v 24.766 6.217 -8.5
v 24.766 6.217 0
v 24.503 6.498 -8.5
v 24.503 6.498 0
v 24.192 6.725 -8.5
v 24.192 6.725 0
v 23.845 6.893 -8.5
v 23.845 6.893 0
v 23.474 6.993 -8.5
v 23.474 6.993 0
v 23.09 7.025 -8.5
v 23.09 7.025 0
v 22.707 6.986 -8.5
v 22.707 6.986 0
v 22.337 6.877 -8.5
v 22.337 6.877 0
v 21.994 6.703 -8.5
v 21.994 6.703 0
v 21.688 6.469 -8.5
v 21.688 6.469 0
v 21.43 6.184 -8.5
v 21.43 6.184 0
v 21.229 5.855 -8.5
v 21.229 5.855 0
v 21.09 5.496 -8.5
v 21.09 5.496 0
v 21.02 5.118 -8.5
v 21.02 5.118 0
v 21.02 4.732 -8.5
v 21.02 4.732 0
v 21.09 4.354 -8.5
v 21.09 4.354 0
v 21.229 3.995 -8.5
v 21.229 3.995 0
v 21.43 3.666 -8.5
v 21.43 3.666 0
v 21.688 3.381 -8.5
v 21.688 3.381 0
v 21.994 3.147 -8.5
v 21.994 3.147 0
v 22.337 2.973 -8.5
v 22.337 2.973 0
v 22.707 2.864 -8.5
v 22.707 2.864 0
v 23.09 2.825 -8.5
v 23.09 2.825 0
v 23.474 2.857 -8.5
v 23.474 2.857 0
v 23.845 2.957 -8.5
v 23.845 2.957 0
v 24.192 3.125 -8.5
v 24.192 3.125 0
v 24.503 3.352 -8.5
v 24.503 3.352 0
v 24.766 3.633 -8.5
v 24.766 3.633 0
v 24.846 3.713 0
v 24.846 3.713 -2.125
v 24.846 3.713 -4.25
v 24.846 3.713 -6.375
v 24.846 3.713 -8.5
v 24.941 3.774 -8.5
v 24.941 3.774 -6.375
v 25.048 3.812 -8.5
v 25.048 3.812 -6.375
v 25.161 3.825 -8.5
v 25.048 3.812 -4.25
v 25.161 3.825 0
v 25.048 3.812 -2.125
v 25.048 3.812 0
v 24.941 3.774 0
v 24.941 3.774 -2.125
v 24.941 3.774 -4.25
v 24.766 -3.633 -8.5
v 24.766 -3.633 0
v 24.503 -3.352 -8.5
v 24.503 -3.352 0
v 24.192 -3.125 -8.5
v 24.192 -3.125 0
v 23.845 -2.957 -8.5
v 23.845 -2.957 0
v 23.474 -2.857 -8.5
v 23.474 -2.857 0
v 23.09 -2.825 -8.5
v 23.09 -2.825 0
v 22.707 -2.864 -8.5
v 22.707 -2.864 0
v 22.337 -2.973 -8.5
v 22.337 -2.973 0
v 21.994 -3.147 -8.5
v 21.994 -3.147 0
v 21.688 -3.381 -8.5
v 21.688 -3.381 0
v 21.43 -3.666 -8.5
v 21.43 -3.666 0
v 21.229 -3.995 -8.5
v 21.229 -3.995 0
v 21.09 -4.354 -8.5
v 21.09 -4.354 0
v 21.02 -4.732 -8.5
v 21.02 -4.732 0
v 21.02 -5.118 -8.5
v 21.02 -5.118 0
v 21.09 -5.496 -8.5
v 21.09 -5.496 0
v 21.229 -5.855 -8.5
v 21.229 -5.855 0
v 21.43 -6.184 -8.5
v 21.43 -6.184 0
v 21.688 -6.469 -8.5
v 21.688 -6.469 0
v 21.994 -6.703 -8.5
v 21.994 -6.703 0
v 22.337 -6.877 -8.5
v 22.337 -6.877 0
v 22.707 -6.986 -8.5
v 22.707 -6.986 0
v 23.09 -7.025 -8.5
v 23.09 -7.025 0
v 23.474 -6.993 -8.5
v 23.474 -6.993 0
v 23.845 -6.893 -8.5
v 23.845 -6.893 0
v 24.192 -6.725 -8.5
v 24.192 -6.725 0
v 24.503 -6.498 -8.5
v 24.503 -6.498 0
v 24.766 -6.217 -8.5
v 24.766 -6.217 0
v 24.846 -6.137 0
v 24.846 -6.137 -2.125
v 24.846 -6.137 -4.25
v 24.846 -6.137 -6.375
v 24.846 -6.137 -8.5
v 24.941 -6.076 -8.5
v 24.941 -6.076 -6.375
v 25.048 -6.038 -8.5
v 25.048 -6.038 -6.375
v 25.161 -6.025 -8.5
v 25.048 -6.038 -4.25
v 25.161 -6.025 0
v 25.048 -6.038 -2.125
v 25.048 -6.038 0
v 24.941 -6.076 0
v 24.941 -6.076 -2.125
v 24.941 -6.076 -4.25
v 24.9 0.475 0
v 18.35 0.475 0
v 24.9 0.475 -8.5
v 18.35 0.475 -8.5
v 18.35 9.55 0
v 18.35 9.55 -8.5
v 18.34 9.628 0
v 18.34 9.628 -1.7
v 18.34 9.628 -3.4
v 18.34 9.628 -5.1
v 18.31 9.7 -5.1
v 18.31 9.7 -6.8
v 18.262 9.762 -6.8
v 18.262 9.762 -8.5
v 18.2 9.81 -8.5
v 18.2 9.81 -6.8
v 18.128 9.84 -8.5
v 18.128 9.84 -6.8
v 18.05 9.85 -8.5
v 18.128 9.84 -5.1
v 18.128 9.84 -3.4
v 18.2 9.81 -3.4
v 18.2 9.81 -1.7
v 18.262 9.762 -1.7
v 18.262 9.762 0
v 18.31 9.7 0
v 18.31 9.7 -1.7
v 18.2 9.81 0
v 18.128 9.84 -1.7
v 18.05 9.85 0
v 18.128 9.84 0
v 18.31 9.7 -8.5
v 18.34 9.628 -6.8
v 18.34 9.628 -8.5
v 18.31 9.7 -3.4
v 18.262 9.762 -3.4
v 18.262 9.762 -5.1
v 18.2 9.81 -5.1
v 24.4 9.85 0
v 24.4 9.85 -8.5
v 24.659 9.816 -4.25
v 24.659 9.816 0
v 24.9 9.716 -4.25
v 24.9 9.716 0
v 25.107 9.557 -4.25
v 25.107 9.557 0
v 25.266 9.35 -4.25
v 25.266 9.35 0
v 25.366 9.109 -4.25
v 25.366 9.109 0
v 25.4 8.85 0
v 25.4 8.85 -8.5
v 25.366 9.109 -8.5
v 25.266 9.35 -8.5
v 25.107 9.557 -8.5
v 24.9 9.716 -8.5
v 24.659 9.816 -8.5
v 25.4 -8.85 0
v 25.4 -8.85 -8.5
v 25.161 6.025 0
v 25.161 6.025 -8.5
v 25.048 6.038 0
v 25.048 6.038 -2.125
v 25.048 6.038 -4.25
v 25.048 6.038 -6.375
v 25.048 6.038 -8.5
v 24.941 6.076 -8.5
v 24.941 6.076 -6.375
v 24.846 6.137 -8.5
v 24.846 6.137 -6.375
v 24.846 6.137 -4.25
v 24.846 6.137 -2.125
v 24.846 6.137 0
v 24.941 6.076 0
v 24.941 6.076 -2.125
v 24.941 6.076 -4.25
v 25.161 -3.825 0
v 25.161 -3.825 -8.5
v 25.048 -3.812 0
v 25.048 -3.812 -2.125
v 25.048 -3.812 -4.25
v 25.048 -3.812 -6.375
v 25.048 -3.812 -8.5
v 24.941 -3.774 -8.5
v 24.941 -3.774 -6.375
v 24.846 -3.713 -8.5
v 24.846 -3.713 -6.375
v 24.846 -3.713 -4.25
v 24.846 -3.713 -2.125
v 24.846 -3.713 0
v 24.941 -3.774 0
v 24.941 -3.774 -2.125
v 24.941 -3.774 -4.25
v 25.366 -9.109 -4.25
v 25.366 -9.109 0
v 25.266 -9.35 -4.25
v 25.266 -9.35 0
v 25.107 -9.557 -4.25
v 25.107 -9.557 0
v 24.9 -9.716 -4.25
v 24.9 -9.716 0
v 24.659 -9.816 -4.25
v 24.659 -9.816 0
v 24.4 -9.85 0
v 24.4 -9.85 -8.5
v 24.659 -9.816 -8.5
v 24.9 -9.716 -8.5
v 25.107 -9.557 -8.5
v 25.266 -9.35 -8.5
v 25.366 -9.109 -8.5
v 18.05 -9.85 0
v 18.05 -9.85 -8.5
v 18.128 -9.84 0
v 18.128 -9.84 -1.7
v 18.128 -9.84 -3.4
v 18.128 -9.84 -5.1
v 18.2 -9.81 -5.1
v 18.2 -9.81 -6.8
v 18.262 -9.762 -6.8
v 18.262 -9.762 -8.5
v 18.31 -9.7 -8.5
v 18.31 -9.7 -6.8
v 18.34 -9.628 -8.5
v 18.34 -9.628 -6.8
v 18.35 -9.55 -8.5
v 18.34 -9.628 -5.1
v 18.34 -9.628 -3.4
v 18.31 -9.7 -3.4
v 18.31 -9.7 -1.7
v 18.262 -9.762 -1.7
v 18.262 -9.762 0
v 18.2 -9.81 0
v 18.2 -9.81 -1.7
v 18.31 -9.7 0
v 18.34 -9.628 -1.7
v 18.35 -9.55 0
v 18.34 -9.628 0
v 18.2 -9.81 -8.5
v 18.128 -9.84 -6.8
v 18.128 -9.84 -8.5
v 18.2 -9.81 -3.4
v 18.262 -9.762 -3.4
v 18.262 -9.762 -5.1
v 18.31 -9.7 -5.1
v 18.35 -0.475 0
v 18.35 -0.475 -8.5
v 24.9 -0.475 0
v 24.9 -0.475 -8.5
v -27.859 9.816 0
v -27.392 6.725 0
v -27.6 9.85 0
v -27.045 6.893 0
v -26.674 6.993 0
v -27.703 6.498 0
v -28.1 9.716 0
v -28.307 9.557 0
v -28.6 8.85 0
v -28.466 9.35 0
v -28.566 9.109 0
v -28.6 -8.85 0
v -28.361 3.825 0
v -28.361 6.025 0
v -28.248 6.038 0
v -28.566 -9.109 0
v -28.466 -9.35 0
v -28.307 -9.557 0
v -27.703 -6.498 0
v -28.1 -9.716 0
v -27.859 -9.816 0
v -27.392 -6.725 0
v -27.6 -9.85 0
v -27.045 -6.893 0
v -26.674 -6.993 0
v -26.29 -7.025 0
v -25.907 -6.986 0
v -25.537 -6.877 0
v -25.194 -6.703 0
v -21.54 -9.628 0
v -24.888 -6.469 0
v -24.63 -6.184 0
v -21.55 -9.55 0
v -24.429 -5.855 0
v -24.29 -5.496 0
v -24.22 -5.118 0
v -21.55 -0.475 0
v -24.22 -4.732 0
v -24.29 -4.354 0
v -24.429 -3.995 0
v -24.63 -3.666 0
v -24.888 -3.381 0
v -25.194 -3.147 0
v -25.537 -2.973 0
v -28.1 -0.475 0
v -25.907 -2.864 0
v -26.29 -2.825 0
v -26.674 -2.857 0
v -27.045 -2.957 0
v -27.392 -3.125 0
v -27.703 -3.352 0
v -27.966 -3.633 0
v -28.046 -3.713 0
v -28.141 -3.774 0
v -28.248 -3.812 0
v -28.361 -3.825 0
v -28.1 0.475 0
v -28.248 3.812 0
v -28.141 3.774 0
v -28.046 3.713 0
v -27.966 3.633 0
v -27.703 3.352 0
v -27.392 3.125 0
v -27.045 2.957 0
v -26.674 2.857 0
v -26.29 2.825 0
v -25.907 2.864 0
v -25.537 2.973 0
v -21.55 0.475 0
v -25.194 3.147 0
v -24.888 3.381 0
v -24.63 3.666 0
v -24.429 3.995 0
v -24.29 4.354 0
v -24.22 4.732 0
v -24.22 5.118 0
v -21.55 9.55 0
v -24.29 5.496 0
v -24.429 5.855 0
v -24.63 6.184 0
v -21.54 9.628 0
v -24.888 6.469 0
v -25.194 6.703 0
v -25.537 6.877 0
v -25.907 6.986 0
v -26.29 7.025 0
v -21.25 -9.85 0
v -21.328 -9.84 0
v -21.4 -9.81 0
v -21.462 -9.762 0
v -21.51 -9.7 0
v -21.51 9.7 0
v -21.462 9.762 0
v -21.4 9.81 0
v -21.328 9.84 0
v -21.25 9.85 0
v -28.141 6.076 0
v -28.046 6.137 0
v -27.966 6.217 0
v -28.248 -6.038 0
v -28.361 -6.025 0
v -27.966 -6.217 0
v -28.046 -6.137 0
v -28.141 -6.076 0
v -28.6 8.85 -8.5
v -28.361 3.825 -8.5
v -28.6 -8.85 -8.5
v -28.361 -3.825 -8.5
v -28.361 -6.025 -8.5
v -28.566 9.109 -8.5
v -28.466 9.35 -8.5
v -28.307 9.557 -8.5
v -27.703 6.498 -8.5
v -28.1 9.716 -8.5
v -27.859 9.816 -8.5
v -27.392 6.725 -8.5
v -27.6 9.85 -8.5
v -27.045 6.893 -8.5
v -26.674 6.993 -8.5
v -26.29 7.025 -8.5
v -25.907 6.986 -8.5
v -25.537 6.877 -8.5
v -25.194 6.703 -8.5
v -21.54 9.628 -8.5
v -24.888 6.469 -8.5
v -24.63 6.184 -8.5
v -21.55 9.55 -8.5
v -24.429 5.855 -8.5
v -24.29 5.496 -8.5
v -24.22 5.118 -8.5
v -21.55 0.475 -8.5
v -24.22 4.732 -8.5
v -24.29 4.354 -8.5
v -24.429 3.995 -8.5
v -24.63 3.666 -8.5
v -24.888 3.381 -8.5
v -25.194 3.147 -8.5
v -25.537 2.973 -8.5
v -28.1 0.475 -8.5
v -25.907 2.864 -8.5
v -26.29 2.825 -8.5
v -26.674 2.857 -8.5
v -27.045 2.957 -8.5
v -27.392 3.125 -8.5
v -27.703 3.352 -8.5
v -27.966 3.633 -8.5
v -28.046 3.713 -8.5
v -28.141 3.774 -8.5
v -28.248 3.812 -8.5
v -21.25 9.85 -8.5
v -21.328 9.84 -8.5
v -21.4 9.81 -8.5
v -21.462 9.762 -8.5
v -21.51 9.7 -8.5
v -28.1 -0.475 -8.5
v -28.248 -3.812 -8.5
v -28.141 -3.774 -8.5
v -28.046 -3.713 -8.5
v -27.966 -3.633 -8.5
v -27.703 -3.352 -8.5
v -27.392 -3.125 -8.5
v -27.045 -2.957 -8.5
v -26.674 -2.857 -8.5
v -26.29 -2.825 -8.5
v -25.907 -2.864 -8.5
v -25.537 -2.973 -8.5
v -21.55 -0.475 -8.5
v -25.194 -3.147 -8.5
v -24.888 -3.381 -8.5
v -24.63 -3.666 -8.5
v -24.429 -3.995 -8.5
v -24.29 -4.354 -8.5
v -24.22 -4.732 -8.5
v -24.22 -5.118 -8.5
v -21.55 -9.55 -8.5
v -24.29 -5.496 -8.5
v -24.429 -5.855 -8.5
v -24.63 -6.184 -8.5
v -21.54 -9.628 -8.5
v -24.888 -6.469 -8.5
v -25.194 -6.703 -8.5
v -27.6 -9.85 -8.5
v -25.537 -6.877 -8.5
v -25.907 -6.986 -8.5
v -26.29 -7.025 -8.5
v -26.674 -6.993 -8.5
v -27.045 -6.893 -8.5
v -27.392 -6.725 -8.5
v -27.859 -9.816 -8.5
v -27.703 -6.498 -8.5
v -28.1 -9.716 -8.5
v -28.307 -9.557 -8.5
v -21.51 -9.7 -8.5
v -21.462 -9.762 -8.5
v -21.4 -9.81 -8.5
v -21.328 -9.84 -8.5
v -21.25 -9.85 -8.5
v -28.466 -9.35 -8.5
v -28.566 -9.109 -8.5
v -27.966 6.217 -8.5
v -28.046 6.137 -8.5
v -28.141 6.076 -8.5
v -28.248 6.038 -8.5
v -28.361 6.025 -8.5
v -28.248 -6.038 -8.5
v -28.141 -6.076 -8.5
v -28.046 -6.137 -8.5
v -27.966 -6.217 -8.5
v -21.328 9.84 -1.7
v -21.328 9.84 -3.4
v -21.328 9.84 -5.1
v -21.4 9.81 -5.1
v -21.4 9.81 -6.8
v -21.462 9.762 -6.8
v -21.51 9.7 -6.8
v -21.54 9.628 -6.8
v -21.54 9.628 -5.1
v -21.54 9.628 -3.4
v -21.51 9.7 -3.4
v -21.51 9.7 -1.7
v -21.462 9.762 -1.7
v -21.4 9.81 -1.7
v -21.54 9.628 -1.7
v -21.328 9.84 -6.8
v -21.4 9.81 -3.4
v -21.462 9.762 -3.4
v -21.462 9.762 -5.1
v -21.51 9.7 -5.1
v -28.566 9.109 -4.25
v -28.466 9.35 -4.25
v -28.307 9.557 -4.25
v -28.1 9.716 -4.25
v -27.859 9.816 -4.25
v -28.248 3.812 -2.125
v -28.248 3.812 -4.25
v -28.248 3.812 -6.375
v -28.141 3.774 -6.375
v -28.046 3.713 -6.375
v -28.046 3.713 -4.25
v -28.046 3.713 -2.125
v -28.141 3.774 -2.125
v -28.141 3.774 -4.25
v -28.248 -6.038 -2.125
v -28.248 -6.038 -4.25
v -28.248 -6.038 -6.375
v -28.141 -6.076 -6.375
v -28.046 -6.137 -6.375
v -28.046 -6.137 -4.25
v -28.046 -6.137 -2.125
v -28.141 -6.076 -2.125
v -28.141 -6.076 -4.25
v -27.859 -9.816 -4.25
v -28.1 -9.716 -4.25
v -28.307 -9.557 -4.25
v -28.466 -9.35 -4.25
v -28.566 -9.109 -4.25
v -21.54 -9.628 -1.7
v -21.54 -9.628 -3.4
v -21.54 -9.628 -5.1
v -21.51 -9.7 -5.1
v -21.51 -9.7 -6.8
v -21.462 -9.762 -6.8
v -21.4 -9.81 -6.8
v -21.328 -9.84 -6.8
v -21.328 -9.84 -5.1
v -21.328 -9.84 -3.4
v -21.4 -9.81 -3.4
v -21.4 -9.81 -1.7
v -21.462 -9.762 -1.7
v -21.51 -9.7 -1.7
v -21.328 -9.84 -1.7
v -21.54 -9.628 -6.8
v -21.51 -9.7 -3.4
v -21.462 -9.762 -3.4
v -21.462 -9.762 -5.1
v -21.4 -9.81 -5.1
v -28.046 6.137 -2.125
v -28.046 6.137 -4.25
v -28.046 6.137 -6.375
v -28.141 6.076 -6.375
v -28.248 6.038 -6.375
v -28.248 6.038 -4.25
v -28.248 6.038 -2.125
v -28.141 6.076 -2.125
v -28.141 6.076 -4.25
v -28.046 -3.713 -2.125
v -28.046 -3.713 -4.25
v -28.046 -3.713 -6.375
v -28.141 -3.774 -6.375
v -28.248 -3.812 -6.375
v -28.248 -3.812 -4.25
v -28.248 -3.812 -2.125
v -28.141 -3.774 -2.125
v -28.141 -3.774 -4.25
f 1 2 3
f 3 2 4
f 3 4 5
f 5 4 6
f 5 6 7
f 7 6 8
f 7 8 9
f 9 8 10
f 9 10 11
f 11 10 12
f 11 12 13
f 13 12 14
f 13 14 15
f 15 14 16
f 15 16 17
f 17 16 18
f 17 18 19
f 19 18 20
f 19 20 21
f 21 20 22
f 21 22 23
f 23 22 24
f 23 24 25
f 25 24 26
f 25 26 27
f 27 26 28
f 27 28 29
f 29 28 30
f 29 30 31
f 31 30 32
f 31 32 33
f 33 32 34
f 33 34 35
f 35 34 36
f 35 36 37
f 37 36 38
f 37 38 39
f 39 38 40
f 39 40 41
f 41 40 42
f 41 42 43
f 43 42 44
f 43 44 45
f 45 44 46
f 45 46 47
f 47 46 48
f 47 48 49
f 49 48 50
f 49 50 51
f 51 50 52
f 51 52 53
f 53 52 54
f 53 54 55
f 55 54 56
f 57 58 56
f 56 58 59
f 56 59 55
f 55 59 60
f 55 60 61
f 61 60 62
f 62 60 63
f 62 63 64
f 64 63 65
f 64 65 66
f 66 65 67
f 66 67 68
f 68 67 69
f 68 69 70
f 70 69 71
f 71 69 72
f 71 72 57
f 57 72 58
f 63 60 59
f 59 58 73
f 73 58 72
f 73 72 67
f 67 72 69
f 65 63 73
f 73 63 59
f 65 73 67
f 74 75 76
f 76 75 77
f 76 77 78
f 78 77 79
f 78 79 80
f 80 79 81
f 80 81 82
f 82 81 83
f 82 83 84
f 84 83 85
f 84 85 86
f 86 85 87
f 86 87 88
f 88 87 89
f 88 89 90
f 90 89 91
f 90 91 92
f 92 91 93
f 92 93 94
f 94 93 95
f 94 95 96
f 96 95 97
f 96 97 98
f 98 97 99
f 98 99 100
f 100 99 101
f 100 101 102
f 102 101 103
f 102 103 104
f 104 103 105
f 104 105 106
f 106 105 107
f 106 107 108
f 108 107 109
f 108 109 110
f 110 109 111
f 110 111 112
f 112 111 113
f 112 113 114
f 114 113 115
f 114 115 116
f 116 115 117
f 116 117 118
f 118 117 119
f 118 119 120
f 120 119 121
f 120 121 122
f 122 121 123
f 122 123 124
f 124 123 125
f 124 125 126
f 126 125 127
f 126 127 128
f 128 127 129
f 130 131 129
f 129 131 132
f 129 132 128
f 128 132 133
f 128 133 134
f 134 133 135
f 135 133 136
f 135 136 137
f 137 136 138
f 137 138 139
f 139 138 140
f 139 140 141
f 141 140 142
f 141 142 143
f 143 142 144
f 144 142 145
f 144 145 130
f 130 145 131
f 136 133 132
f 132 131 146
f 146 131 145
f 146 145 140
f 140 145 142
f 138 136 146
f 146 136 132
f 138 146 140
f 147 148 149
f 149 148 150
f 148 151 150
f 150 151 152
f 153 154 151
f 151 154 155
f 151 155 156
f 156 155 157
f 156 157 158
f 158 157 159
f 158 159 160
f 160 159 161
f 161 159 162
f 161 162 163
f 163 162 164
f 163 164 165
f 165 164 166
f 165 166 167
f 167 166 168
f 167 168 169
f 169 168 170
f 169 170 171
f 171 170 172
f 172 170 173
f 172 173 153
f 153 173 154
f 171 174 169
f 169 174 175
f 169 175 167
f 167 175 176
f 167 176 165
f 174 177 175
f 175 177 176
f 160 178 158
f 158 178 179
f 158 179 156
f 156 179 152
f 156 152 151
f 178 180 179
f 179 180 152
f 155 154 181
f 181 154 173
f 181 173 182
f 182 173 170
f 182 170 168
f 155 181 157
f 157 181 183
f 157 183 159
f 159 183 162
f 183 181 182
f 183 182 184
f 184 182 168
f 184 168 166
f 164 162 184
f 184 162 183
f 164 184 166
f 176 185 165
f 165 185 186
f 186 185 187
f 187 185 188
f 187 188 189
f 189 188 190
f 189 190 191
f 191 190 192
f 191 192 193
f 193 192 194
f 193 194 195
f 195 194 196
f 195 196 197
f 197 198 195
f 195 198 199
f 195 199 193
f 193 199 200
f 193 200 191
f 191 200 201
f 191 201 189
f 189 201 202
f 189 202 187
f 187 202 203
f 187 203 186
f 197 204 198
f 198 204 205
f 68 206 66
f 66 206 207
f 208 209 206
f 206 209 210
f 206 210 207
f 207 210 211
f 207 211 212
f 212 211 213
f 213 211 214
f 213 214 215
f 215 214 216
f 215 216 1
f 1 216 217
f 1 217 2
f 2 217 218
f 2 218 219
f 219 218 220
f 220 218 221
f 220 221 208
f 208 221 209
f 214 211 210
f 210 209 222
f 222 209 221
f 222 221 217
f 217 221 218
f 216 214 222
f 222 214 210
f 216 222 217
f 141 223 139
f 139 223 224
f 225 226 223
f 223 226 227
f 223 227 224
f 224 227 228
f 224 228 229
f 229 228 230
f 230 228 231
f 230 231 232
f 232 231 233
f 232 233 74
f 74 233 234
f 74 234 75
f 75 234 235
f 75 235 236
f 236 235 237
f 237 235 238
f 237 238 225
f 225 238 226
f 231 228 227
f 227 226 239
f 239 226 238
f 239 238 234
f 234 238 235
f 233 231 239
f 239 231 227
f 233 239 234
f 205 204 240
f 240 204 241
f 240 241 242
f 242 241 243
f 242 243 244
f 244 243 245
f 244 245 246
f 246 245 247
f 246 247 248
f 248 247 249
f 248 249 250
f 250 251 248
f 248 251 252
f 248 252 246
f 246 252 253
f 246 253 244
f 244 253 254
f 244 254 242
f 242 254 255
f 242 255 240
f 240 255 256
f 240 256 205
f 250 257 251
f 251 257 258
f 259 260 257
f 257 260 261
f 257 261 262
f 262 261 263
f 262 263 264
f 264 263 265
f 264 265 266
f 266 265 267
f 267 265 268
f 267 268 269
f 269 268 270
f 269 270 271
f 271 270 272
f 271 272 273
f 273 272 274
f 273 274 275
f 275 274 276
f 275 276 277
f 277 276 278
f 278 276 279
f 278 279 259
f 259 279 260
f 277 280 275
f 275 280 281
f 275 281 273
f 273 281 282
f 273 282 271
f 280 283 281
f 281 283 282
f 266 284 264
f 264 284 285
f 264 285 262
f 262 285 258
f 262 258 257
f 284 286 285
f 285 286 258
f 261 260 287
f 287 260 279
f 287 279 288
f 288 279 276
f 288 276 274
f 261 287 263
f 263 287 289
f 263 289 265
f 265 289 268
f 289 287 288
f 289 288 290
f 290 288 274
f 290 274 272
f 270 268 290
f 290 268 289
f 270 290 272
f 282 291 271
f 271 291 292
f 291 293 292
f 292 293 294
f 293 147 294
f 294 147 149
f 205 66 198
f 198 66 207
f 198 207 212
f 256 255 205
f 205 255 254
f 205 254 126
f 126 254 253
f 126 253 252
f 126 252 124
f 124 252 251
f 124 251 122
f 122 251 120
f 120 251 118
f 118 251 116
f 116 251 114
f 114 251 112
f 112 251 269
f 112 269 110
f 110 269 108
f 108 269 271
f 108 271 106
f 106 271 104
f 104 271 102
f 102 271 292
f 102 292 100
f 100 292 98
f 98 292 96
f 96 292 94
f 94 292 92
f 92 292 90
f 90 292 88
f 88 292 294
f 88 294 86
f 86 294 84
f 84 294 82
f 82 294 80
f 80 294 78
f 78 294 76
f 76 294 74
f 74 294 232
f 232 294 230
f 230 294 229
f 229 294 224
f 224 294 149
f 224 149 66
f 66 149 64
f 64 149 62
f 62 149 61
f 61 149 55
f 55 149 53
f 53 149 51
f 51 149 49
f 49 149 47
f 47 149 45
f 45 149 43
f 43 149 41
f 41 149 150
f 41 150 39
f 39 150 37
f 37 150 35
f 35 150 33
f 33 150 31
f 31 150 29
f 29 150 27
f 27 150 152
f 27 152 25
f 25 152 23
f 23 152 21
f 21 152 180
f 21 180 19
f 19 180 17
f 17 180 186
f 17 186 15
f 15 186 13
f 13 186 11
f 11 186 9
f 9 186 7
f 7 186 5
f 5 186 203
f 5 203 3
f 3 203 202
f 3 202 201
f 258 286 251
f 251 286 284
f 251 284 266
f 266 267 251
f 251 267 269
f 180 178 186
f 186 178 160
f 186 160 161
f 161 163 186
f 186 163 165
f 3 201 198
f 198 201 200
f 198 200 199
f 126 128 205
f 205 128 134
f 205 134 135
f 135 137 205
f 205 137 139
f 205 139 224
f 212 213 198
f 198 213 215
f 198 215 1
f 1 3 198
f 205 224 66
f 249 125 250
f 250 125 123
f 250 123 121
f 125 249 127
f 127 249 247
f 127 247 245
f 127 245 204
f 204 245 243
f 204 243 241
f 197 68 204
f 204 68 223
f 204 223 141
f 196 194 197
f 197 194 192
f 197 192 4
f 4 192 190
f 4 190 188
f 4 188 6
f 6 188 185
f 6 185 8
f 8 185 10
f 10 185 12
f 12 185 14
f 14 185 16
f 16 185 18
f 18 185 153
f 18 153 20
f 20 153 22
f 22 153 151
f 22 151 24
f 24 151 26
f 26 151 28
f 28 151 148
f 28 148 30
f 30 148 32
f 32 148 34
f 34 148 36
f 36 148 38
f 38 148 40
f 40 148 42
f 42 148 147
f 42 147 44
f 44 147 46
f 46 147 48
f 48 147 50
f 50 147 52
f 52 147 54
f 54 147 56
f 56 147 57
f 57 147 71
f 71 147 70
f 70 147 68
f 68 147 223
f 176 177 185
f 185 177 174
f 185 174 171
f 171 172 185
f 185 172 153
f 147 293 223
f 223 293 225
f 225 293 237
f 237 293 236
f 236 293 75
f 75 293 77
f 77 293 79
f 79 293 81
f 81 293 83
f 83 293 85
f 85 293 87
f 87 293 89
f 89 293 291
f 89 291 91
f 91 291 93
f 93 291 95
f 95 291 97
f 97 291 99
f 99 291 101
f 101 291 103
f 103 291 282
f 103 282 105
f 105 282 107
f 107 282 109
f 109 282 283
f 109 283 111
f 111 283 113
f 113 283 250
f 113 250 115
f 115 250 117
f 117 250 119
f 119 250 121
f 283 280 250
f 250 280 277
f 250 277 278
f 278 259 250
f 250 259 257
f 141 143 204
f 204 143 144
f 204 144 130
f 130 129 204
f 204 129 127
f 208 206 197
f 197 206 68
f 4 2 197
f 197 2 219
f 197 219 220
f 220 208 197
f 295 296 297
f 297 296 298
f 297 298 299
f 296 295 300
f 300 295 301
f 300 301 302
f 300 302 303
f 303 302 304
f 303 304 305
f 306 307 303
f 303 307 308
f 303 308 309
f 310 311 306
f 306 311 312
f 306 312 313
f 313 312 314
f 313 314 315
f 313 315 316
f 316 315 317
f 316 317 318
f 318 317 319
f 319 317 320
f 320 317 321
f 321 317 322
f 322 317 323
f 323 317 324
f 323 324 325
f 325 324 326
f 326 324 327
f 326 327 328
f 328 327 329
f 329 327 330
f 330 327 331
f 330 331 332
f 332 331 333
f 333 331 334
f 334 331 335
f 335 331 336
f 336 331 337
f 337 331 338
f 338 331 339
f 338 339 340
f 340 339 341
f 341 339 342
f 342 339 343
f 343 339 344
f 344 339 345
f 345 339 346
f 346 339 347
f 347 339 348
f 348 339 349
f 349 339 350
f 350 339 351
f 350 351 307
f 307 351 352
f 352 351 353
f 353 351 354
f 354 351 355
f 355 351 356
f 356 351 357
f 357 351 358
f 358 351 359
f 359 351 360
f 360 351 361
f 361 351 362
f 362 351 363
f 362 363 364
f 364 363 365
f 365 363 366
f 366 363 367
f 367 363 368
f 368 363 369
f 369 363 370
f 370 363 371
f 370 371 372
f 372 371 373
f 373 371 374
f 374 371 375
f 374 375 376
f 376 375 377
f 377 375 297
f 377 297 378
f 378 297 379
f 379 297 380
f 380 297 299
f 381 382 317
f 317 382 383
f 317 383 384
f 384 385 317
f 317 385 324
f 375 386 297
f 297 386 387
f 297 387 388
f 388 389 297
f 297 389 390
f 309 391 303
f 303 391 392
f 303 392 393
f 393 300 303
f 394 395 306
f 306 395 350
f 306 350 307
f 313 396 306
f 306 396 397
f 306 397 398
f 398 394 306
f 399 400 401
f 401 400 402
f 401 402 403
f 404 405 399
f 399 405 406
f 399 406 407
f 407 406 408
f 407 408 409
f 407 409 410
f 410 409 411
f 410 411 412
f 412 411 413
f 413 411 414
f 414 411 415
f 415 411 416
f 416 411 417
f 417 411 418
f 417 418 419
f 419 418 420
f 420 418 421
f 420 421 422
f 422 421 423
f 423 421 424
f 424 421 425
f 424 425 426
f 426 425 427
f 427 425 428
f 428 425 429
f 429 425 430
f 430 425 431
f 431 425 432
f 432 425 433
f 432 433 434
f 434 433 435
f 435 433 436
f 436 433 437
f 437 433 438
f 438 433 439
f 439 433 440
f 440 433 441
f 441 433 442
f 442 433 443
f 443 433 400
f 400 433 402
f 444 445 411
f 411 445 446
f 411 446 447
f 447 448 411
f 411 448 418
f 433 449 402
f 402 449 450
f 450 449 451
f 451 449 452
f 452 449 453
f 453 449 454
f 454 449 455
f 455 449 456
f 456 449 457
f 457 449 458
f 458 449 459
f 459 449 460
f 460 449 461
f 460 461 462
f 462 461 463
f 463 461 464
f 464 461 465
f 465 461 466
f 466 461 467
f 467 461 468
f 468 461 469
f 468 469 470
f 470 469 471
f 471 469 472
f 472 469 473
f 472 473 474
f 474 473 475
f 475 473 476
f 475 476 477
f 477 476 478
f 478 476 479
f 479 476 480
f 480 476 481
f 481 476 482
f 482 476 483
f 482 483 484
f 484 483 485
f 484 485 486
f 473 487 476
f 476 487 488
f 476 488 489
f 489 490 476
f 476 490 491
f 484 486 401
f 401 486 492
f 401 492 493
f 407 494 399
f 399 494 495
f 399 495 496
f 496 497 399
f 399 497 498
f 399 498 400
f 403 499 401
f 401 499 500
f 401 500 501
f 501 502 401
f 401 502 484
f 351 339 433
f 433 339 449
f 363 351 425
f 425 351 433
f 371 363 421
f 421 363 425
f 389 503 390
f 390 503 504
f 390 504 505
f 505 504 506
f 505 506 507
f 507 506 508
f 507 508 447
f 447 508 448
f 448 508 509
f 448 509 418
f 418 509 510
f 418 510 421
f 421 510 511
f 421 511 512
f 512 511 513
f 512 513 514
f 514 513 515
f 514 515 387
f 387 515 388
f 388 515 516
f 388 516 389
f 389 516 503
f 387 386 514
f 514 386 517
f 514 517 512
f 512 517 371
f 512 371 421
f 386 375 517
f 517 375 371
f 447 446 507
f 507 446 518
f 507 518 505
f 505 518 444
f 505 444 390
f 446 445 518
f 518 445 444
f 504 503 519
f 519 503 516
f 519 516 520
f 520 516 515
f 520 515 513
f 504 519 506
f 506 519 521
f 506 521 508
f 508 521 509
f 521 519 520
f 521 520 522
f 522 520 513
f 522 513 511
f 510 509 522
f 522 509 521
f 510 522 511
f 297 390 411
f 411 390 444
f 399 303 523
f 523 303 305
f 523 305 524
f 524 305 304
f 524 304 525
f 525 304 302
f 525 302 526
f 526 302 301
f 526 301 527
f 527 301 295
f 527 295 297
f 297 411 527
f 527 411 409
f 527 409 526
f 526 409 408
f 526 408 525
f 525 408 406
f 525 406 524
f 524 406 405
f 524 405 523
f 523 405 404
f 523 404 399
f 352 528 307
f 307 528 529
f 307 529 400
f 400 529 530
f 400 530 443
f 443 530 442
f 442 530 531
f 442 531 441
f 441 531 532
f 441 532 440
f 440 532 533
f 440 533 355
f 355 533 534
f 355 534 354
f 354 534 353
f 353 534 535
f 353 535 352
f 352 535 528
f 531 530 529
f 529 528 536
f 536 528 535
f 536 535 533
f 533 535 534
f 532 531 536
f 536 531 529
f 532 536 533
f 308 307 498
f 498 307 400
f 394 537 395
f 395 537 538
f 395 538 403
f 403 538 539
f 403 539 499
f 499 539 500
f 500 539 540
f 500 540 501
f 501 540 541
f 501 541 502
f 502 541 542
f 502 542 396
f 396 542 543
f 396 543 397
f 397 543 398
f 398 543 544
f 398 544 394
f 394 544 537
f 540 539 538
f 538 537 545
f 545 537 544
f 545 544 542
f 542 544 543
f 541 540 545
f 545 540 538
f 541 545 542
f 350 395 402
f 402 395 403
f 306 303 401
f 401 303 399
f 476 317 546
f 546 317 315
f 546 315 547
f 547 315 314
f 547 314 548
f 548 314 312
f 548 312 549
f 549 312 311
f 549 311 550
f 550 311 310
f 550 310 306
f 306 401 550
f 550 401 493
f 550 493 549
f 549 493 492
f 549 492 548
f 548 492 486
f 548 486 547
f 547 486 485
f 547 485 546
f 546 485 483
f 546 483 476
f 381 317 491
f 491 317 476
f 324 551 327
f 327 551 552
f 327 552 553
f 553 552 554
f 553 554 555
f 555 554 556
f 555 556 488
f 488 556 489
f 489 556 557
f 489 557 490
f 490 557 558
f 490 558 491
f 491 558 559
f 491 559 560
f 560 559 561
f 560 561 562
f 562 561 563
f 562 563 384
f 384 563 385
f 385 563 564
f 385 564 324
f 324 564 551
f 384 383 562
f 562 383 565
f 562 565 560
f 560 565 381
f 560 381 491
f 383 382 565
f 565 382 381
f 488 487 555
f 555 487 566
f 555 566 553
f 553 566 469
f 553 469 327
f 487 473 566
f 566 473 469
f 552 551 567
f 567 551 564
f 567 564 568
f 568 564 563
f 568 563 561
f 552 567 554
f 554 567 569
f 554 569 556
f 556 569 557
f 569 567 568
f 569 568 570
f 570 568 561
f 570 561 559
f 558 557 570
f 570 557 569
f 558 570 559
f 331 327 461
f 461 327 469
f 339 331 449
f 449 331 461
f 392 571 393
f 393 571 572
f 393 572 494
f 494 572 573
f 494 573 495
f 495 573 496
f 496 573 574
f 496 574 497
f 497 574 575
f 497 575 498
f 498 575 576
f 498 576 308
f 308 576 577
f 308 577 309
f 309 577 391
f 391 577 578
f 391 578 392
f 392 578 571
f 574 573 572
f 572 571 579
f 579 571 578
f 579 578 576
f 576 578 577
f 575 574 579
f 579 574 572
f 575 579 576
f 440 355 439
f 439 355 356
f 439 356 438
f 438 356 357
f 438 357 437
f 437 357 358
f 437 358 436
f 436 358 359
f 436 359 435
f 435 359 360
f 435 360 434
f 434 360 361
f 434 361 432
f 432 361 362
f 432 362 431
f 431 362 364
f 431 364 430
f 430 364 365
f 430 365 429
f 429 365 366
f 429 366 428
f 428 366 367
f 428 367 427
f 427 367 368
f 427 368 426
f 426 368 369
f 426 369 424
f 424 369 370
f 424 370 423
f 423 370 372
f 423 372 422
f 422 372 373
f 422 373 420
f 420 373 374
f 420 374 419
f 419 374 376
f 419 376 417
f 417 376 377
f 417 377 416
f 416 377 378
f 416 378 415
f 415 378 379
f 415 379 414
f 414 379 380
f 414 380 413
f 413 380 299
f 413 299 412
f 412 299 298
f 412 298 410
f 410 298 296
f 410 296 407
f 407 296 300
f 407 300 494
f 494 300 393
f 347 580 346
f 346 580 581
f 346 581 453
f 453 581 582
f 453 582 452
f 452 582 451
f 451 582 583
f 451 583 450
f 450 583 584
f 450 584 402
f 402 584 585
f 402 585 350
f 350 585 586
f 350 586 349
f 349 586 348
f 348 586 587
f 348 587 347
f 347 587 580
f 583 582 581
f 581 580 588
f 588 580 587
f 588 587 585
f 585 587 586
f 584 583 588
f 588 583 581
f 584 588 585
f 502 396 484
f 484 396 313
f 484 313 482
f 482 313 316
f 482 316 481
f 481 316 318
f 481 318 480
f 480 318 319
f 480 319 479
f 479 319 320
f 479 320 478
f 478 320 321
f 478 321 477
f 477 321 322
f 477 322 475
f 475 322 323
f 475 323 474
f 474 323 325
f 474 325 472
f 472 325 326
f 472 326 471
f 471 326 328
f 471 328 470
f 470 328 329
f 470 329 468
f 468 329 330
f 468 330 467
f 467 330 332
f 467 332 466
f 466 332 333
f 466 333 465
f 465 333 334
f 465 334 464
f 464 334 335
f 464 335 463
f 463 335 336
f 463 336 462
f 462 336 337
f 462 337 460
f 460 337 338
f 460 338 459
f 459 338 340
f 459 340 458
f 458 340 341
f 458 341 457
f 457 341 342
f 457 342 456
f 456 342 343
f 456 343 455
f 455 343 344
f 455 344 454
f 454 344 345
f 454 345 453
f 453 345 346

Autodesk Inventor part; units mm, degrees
ref_plane "YZ Plane" through (0, 0, 0) normal (1, 0, 0) x (0, 1, 0)
ref_plane "Work Plane1" through (25.1605, -6.525, -8.5) normal (0, 0, 1) x (1, 0, 0)
sketch "Sketch2" plane through (25.1605, -6.525, -8.5) normal (0, 0, 1) x (1, 0, 0)
  line L0 (-6.8105, 7) -> (-6.8105, 16.075) projected
  line L1 (-6.8105, 7) -> (-0.2605, 7) projected
  line L2 (-0.2605, 7) -> (-0.2605, 6.05) projected
  line L3 (-6.8105, 6.05) -> (-0.2605, 6.05) projected
  line L4 (-6.8105, -3.025) -> (-6.8105, 6.05) projected
  arc A0 (-7.1105, -3.325) -> (-6.8105, -3.025) centre (-7.1105, -3.025) ccw projected
  line L5 (-7.1105, -3.325) -> (-0.7605, -3.325) projected
  arc A1 (-0.7605, -3.325) -> (0.2395, -2.325) centre (-0.7605, -2.325) ccw projected
  line L6 (0.2395, -2.325) -> (0.2395, 0.5) projected
  line L7 (0.2395, 0.5) -> (0, 0.5) projected
  arc A2 (0, 0.5) -> (-0.3941, 0.3077) centre (0, 0) ccw projected
  arc A3 (-0.3941, 2.8923) -> (-0.3941, 0.3077) centre (-2.0494, 1.6) ccw projected
  arc A4 (-0.3941, 2.8923) -> (0, 2.7) centre (0, 3.2) ccw projected
  line L8 (0, 2.7) -> (0.2395, 2.7) projected
  line L9 (0.2395, 2.7) -> (0.2395, 10.35) projected
  line L10 (0.2395, 10.35) -> (0, 10.35) projected
  arc A5 (0, 10.35) -> (-0.3941, 10.1577) centre (0, 9.85) ccw projected
  arc A6 (-0.3941, 12.7423) -> (-0.3941, 10.1577) centre (-2.0494, 11.45) ccw projected
  arc A7 (-0.3941, 12.7423) -> (0, 12.55) centre (0, 13.05) ccw projected
  line L11 (0, 12.55) -> (0.2395, 12.55) projected
  line L12 (0.2395, 12.55) -> (0.2395, 15.375) projected
  arc A8 (0.2395, 15.375) -> (-0.7605, 16.375) centre (-0.7605, 15.375) ccw projected
  line L13 (-0.7605, 16.375) -> (-7.1105, 16.375) projected
  arc A9 (-6.8105, 16.075) -> (-7.1105, 16.375) centre (-7.1105, 16.075) ccw projected
  line L14 (-53.2605, 7) -> (-53.2605, 6.05) projected
  line L15 (-46.7105, 7) -> (-53.2605, 7) projected
  line L16 (-46.7105, 16.075) -> (-46.7105, 7) projected
  arc A10 (-46.4105, 16.375) -> (-46.7105, 16.075) centre (-46.4105, 16.075) ccw projected
  line L17 (-46.4105, 16.375) -> (-52.7605, 16.375) projected
  arc A11 (-52.7605, 16.375) -> (-53.7605, 15.375) centre (-52.7605, 15.375) ccw projected
  line L18 (-53.7605, 15.375) -> (-53.7605, 12.55) projected
  line L19 (-53.7605, 12.55) -> (-53.5211, 12.55) projected
  arc A12 (-53.5211, 12.55) -> (-53.127, 12.7423) centre (-53.5211, 13.05) ccw projected
  arc A13 (-53.127, 10.1577) -> (-53.127, 12.7423) centre (-51.4717, 11.45) ccw projected
  arc A14 (-53.127, 10.1577) -> (-53.5211, 10.35) centre (-53.5211, 9.85) ccw projected
  line L20 (-53.5211, 10.35) -> (-53.7605, 10.35) projected
  line L21 (-53.7605, 10.35) -> (-53.7605, 2.7) projected
  line L22 (-53.7605, 2.7) -> (-53.5211, 2.7) projected
  arc A15 (-53.5211, 2.7) -> (-53.127, 2.8923) centre (-53.5211, 3.2) ccw projected
  arc A16 (-53.127, 0.3077) -> (-53.127, 2.8923) centre (-51.4717, 1.6) ccw projected
  arc A17 (-53.127, 0.3077) -> (-53.5211, 0.5) centre (-53.5211, 0) ccw projected
  line L23 (-53.5211, 0.5) -> (-53.7605, 0.5) projected
  line L24 (-53.7605, 0.5) -> (-53.7605, -2.325) projected
  arc A18 (-53.7605, -2.325) -> (-52.7605, -3.325) centre (-52.7605, -2.325) ccw projected
  line L25 (-52.7605, -3.325) -> (-46.4105, -3.325) projected
  arc A19 (-46.7105, -3.025) -> (-46.4105, -3.325) centre (-46.4105, -3.025) ccw projected
  line L26 (-46.7105, 6.05) -> (-46.7105, -3.025) projected
  line L27 (-46.7105, 6.05) -> (-53.2605, 6.05) projected
  line L28 (-53.5211, 0.5) -> (-53.5211, 2.7)
  line L29 (-53.7605, 0.5) -> (-53.7605, 2.7)
  line L30 (-53.7605, 10.35) -> (-53.7605, 12.55)
  line L31 (-53.5211, 10.35) -> (-53.5211, 12.55)
  line L32 (0.2395, 0.5) -> (0.2395, 2.7)
  line L33 (0, 0.5) -> (0, 2.7)
  line L34 (0.2395, 10.35) -> (0.2395, 12.55)
  line L35 (0, 10.35) -> (0, 12.55)
  point P0 (-25.1605, 6.525)
ref_plane "Work Plane2" through (-11.5498, -16.6818, 0) normal (0, 0, 1) x (1, 0, 0)
extrude "Extrusion1" add sketch "Sketch2" along normal up to surface (8.5 mm away) contours L0 A9 L13 A8 L12 L11 A7 A6 A5 L10 L9 L8 A4 A3 A2 L7 L6 A1 L5 A0 L4 L3 L2 L1 | L34 L10 L35 L11 | L32 L7 L33 L8 | L14 L27 L26 A19 L25 A18 L24 L23 A17 A16 A15 L22 L21 L20 A14 A13 A12 L19 L18 A11 L17 A10 L16 L15 | L19 L31 L20 L30 | L29 L22 L28 L23
properties part number "buh2_3DPrint"
